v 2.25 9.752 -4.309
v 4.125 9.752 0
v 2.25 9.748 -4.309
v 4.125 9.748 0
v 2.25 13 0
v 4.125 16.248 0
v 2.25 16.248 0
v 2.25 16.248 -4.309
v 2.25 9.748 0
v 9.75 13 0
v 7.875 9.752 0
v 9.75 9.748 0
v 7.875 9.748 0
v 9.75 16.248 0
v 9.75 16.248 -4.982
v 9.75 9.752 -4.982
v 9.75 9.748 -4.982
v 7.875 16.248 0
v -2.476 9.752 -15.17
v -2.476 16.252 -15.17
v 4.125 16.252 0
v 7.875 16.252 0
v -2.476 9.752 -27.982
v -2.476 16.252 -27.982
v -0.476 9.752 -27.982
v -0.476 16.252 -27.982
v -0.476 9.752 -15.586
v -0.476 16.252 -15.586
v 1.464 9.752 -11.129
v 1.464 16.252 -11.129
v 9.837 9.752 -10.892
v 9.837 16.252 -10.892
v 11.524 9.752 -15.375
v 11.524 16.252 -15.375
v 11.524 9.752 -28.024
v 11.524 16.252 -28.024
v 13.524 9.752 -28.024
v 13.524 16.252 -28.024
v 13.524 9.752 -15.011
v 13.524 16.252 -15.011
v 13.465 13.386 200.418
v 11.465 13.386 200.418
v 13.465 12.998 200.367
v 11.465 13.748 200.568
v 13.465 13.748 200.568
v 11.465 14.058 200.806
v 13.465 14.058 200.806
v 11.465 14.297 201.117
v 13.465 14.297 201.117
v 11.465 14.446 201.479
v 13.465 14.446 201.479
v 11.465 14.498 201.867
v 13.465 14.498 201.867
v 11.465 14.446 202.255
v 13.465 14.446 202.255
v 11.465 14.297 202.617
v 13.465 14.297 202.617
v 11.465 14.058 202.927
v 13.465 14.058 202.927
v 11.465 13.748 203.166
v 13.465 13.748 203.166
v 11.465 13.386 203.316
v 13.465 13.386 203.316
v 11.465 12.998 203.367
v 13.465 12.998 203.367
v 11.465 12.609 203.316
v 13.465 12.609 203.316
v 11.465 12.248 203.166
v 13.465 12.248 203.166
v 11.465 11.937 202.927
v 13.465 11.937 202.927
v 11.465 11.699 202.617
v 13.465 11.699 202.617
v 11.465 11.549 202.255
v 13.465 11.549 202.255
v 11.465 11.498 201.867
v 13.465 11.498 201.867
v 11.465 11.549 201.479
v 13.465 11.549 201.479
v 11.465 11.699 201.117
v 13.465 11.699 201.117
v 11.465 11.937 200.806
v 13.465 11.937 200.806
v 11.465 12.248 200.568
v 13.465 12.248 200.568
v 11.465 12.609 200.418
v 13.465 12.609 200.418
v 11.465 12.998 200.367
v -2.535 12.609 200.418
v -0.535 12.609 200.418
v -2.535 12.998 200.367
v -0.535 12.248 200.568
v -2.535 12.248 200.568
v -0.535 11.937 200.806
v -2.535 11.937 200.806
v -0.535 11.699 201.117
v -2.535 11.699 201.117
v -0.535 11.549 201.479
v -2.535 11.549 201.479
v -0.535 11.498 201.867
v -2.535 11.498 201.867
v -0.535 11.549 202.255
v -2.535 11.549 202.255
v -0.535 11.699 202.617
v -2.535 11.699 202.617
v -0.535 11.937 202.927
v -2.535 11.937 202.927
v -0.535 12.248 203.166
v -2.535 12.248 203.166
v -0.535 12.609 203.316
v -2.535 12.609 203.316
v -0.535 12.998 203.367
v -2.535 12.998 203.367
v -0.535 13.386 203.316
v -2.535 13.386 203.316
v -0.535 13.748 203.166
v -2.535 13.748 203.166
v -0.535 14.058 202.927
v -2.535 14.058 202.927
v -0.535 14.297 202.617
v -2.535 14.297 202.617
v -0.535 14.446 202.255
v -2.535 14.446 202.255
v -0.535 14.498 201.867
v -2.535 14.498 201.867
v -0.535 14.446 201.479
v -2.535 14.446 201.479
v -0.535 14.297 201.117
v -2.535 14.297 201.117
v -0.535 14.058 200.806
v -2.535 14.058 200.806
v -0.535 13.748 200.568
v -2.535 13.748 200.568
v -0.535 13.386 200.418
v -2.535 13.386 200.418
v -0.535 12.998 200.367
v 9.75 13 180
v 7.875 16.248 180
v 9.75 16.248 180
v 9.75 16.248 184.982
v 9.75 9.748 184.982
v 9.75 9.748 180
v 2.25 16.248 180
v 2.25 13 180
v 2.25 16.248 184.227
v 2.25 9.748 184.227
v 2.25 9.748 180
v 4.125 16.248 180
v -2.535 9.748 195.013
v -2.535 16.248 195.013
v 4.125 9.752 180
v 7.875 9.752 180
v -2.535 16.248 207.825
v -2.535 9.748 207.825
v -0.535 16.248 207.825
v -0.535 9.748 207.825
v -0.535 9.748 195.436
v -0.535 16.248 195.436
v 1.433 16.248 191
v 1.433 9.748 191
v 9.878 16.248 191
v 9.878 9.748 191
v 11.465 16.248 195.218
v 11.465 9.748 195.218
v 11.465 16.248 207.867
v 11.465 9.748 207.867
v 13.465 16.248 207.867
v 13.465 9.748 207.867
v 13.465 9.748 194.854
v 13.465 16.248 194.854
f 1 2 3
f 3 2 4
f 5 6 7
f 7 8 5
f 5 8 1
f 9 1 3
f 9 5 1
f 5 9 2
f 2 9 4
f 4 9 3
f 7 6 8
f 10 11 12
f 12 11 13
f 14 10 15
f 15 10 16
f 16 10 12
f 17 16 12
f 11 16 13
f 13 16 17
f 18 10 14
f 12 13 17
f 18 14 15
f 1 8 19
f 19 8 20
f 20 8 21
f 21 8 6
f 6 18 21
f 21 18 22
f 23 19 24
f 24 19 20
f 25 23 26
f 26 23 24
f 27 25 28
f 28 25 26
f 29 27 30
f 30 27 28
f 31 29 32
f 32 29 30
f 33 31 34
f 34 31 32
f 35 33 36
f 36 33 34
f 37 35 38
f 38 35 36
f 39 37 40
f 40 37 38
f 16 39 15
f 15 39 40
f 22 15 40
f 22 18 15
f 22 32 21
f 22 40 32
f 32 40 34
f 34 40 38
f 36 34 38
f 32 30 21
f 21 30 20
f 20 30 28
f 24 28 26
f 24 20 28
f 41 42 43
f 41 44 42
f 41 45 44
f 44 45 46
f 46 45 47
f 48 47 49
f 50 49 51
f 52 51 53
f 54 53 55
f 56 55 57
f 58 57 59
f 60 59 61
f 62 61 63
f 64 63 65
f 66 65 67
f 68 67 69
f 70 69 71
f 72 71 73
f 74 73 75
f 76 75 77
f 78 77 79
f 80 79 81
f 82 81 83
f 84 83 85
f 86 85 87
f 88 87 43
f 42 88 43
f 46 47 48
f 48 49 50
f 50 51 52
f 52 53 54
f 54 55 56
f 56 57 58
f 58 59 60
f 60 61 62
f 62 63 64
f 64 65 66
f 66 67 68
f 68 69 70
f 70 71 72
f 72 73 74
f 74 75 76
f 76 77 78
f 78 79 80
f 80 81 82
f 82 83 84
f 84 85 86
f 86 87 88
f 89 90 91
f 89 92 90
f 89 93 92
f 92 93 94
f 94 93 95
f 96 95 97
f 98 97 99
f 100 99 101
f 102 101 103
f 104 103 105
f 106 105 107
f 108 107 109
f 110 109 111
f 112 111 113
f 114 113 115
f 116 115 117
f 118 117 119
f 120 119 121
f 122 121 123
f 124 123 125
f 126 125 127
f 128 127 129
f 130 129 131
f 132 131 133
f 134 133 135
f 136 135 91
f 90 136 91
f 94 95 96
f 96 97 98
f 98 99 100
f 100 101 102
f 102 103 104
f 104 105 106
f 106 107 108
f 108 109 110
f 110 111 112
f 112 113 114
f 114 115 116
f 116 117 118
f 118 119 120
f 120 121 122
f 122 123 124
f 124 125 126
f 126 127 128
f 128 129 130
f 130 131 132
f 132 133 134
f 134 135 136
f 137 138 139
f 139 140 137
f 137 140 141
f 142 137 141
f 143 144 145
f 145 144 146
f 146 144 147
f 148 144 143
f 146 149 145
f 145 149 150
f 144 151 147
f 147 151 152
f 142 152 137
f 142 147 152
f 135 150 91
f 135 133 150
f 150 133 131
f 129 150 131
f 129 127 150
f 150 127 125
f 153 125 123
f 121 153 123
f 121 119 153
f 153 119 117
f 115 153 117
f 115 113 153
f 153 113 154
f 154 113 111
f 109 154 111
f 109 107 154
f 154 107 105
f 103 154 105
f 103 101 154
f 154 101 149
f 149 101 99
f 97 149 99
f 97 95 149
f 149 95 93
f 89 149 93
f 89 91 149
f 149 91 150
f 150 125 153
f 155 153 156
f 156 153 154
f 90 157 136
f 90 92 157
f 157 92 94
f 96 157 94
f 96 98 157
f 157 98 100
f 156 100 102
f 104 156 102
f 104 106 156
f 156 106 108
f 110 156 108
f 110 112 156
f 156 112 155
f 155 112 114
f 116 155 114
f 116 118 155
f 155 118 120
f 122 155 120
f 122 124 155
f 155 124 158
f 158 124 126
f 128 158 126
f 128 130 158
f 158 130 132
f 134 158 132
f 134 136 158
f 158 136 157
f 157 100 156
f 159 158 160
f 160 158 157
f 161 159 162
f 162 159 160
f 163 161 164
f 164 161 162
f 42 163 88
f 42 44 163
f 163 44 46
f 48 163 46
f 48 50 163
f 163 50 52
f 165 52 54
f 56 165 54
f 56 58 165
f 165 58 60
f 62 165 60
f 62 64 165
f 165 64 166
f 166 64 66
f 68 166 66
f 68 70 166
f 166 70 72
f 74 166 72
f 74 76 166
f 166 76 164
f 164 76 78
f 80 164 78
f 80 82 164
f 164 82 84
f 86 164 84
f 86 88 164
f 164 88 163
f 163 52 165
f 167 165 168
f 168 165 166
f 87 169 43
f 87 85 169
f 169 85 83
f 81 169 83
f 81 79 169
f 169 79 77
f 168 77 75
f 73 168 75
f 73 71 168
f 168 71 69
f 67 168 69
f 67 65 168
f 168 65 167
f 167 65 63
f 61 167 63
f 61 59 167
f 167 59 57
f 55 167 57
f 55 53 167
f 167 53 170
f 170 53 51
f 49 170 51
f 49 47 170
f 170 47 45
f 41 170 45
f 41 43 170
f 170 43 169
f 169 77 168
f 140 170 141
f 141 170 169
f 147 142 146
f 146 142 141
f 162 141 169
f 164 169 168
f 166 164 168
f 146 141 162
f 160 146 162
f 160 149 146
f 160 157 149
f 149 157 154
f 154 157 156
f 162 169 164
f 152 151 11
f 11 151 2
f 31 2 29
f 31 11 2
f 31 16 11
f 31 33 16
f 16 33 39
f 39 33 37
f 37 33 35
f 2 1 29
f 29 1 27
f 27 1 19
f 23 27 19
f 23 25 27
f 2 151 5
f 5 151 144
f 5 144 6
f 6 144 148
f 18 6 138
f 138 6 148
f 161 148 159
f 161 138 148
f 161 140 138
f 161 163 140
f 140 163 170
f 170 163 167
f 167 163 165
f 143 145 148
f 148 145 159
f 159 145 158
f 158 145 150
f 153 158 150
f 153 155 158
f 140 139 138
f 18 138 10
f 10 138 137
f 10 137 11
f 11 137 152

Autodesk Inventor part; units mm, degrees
ref_plane "YZ Plane" through (0, 0, 0) normal (1, 0, 0) x (0, 1, 0)
ref_plane "XZ Plane" through (0, 0, 0) normal (0, 1, 0) x (-1, 0, 0)
ref_plane "XY Plane" through (0, 0, 0) normal (0, 0, 1) x (1, 0, 0)
sketch "Sketch1" plane through (0, 0, 0) normal (0, 0, 1) x (1, 0, 0)
  line L0 (9.75, 13) -> (7.875, 9.7524)
  line L1 (7.875, 9.7524) -> (4.125, 9.7524)
  line L2 (4.125, 9.7524) -> (2.25, 13)
  line L3 (2.25, 13) -> (4.125, 16.2476)
  line L4 (4.125, 16.2476) -> (7.875, 16.2476)
  line L5 (7.875, 16.2476) -> (9.75, 13)
  point P0 (0, 0)
  point P1 (6, 13)
  dimension "d0" = 7.5
extrude "Extrusion1" add sketch "Sketch1" along normal blind 180
sketch "Sketch2" plane through (4.125, 16.2476, 0) normal (0, 1, 0) x (1, 0, 0)
  line L0 (3.75, -180) -> (5.625, -180) projected
  line L1 (3.75, -180) -> (0, -180) projected
  line L2 (0, -180) -> (-6.6597, -195.0128)
  line L3 (-1.875, 0) -> (-1.875, -180) projected
  line L4 (-6.6597, -207.8247) -> (-6.6597, -195.0128)
  line L5 (3.75, -180) -> (1.875, -180)
  line L6 (9.3403, -207.8668) -> (9.3403, -194.8539)
  line L7 (9.3403, -194.8539) -> (3.75, -180)
  line L8 (9.3403, -207.8668) -> (7.3403, -207.8668)
  line L9 (7.3403, -207.8668) -> (7.3403, -195.2178)
  line L10 (-6.6597, -207.8247) -> (-4.6597, -207.8247)
  line L11 (-4.6597, -207.8247) -> (-4.6597, -195.4364)
  line L12 (2.1735, -180.0436) -> (2.158, -180)
  line L13 (1.875, -191) -> (5.7529, -191)
  line L14 (-2.6917, -191) -> (1.875, -191)
  line L15 (-4.6597, -195.4364) -> (-2.6917, -191)
  line L16 (5.7529, -191) -> (7.3403, -195.2178)
  line L17 (1.875, -180) -> (1.875, -207.8247)
  point P0 (-4.125, 0)
  dimension "d12" = 2
  dimension "d13" = 2
  dimension "d16" = 27.8247
  dimension "d17" = 11
  dimension "d21" = 12
  dimension "d31" = 2
  dimension "d32" = 2
extrude "Extrusion2" add sketch "Sketch2" against normal blind 6.5
sketch "Sketch3" plane through (-2.5347, 9.7476, 195.0128) normal (-0.9141, 0, -0.4055) x (-0.4055, 0, 0.9141)
  point P0 (-179.2885, -9.7476)
sketch "Sketch5" plane through (4.125, 16.2476, 0) normal (0, 1, 0) x (1, 0, 0)
  line L0 (-1.875, -180) -> (0, -180) projected
  line L1 (-1.875, -180) -> (-1.875, -184.2268)
  line L2 (0, -180) -> (-6.6597, -195.0128) projected
  line L3 (3.75, -180) -> (5.625, -180) projected
  line L4 (5.625, -180) -> (5.625, -184.982)
  line L5 (9.3403, -194.8539) -> (3.75, -180) projected
  point P0 (-4.125, 0)
extrude "Extrusion3" add sketch "Sketch5" against normal blind 6.5
sketch "Sketch6" plane through (13.4653, 16.2476, 207.8668) normal (1, 0, 0) x (0, 0, -1)
  line L0 (0, 0) -> (0, -3.25)
  line L1 (0, 0) -> (0, -6.5) projected
  line L2 (0, -3.25) -> (6, -3.25)
  circle A0 centre (6, -3.25) radius 1.5
  point P0 (207.8668, -16.2476)
  dimension "d27" = 6
  dimension "d28" = 3
extrude "Extrusion4" cut sketch "Sketch6" against normal through all
sketch "Sketch7" plane through (4.125, 9.7524, 0) normal (0, -1, 0) x (1, 0, 0)
  line L0 (0, 0) -> (-6.6005, -15.1699)
  line L1 (-6.6005, -27.9818) -> (-6.6005, -15.1699)
  line L2 (9.3995, -28.0239) -> (9.3995, -15.011)
  line L3 (9.3995, -15.011) -> (3.75, 0)
  line L4 (9.3995, -28.0239) -> (7.3995, -28.0239)
  line L5 (7.3995, -28.0239) -> (7.3995, -15.3749)
  line L6 (-6.6005, -27.9818) -> (-4.6005, -27.9818)
  line L7 (-4.6005, -27.9818) -> (-4.6005, -15.5861)
  line L8 (1.9054, -10.9999) -> (5.7124, -10.8924)
  line L9 (-2.6612, -11.129) -> (1.9054, -10.9999)
  line L10 (-4.6005, -15.5861) -> (-2.6612, -11.129)
  line L11 (5.7124, -10.8924) -> (7.3995, -15.3749)
  line L12 (1.942, 0) -> (1.942, -27.8247)
  line L13 (5.625, 0) -> (3.75, 0) projected
  line L14 (0, 0) -> (3.75, 0) projected
  line L15 (3.75, 0) -> (0, 0)
  line L16 (3.75, 0) -> (0, 0) projected
  point P0 (-4.125, 0)
  dimension "d34" = 2
  dimension "d35" = 2
  dimension "d36" = 11
  dimension "d37" = 12
  dimension "d38" = 2
  dimension "d39" = 2
extrude "Extrusion5" add sketch "Sketch7" against normal blind 6.5
sketch "Sketch8" plane through (1.4333, 16.2476, 191) normal (0, 1, 0) x (1, 0, 0)
  line L0 (8.3167, 191) -> (6.4417, 191) projected
  line L1 (8.3167, 191) -> (8.3167, 195.982)
  line L2 (12.0911, 206.011) -> (6.4417, 191) projected
  line L3 (2.6917, 191) -> (0.8167, 191) projected
  line L4 (0.8167, 191) -> (0.8167, 195.3093)
  line L5 (-3.9089, 206.1699) -> (2.6917, 191) projected
  point P0 (-1.4333, 191)
extrude "Extrusion6" add sketch "Sketch8" against normal blind 6.5
properties part number "Rod v1"
